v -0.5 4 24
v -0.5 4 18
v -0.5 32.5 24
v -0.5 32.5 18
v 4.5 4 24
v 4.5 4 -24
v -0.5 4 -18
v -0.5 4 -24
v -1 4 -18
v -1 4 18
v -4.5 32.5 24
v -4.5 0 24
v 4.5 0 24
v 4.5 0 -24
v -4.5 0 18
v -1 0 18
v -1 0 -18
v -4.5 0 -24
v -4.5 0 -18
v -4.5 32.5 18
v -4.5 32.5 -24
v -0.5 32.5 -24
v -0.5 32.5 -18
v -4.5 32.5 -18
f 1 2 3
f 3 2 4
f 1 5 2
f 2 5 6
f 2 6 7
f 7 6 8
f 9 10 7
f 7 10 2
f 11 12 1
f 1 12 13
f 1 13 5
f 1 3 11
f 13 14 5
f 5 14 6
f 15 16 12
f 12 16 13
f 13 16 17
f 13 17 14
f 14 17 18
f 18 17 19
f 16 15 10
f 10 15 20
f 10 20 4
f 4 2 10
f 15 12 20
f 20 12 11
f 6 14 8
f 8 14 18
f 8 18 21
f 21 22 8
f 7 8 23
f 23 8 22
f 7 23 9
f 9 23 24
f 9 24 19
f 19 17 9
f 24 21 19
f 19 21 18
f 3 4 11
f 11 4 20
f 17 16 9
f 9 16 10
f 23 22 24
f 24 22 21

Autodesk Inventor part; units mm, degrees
ref_plane "YZ Plane" through (0, 0, 0) normal (1, 0, 0) x (0, 1, 0)
ref_plane "XZ Plane" through (0, 0, 0) normal (0, 1, 0) x (-1, 0, 0)
ref_plane "XY Plane" through (0, 0, 0) normal (0, 0, 1) x (1, 0, 0)
sketch "Sketch1" plane through (0, 0, 0) normal (0, 1, 0) x (-1, 0, 0)
  line L0 (-4.5, 24) -> (4.5, 24)
  line L1 (4.5, 24) -> (4.5, -24)
  line L2 (4.5, -24) -> (-4.5, -24)
  line L3 (-4.5, -24) -> (-4.5, 24)
  line L4 (-4.5, 24) -> (4.5, -24) construction
  line L5 (4.5, 24) -> (-4.5, -24) construction
  point P0 (0, 0)
  dimension "d0" = 9
  dimension "d1" = 48
extrude "Extrusion1" add sketch "Sketch1" along normal blind 4
sketch "Sketch2" plane through (0, 4, 0) normal (0, 1, 0) x (1, 0, 0)
  line L0 (4.5, 24) -> (-4.5, 24) projected
  line L1 (-4.5, 24) -> (-0.5, 24)
  line L2 (-0.5, 24) -> (-0.5, 18)
  line L3 (-0.5, 18) -> (-4.5, 18)
  line L4 (-4.5, 18) -> (-4.5, 24)
  line L5 (-4.5, -24) -> (4.5, -24) projected
  line L6 (-4.5, -24) -> (-0.5, -24)
  line L7 (-0.5, -24) -> (-0.5, -18)
  line L8 (-0.5, -18) -> (-4.5, -18)
  line L9 (-4.5, -18) -> (-4.5, -24)
  point P0 (0, 0)
  dimension "d4" = 4
  dimension "d5" = 6
  dimension "d6" = 4
  dimension "d7" = 6
extrude "Extrusion2" add sketch "Sketch2" along normal blind 24.5
sketch "Sketch3" plane through (0, 4, 0) normal (0, 1, 0) x (1, 0, 0)
  point P0 (0, 0)
sketch "Sketch4" plane through (0, 4, 0) normal (0, 1, 0) x (1, 0, 0)
  line L0 (-4.5, 18) -> (1, 18)
  line L1 (1, 18) -> (1, -18)
  line L2 (1, -18) -> (-4.5, -18)
  line L3 (-4.5, -18) -> (-4.5, 18)
  line L4 (-4.5, 18) -> (-4.5, -18) projected
  line L5 (-4.5, -18) -> (-0.5, -18) projected
  point P0 (0, 0)
  dimension "d10" = 5.5
  dimension "d11" = 36
extrude "Extrusion3" cut sketch "Sketch4" against normal blind 4
sketch "Sketch5" plane through (1, 4, -18) normal (-1, 0, 0) x (0, 0, 1)
  line L0 (36, -4) -> (0, -4)
  line L1 (0, -4) -> (0, 0)
  line L2 (0, 0) -> (36, 0)
  line L3 (36, 0) -> (36, -4)
  line L4 (0, 0) -> (36, 0) projected
  line L5 (0, 0) -> (0, -4) projected
  point P0 (18, -4)
  dimension "d14" = 36
  dimension "d15" = 4
extrude "Extrusion4" add sketch "Sketch5" along normal blind 2
sketch "Sketch6" plane through (0, 28.5, 0) normal (0, 1, 0) x (1, 0, 0)
  point P0 (0, 0)
sketch "Sketch7" plane through (0, 28.5, 0) normal (0, 1, 0) x (1, 0, 0)
  line L0 (-4.5, -18) -> (-4.5, -24) projected
  line L1 (-0.5, -18) -> (-0.5, -24) projected
  line L2 (-4.5, -24) -> (-0.5, -24)
  line L3 (-0.5, -24) -> (-0.5, -18)
  line L4 (-0.5, -18) -> (-4.5, -18)
  line L5 (-4.5, -18) -> (-4.5, -24)
  line L6 (-4.5, 24) -> (-4.5, 18) projected
  line L7 (-0.5, 24) -> (-0.5, 18) projected
  line L8 (-4.5, 18) -> (-0.5, 18)
  line L9 (-0.5, 18) -> (-0.5, 24)
  line L10 (-0.5, 24) -> (-4.5, 24)
  line L11 (-4.5, 24) -> (-4.5, 18)
  point P0 (0, 0)
extrude "Extrusion5" add sketch "Sketch7" along normal blind 4
properties part number "roof4"
